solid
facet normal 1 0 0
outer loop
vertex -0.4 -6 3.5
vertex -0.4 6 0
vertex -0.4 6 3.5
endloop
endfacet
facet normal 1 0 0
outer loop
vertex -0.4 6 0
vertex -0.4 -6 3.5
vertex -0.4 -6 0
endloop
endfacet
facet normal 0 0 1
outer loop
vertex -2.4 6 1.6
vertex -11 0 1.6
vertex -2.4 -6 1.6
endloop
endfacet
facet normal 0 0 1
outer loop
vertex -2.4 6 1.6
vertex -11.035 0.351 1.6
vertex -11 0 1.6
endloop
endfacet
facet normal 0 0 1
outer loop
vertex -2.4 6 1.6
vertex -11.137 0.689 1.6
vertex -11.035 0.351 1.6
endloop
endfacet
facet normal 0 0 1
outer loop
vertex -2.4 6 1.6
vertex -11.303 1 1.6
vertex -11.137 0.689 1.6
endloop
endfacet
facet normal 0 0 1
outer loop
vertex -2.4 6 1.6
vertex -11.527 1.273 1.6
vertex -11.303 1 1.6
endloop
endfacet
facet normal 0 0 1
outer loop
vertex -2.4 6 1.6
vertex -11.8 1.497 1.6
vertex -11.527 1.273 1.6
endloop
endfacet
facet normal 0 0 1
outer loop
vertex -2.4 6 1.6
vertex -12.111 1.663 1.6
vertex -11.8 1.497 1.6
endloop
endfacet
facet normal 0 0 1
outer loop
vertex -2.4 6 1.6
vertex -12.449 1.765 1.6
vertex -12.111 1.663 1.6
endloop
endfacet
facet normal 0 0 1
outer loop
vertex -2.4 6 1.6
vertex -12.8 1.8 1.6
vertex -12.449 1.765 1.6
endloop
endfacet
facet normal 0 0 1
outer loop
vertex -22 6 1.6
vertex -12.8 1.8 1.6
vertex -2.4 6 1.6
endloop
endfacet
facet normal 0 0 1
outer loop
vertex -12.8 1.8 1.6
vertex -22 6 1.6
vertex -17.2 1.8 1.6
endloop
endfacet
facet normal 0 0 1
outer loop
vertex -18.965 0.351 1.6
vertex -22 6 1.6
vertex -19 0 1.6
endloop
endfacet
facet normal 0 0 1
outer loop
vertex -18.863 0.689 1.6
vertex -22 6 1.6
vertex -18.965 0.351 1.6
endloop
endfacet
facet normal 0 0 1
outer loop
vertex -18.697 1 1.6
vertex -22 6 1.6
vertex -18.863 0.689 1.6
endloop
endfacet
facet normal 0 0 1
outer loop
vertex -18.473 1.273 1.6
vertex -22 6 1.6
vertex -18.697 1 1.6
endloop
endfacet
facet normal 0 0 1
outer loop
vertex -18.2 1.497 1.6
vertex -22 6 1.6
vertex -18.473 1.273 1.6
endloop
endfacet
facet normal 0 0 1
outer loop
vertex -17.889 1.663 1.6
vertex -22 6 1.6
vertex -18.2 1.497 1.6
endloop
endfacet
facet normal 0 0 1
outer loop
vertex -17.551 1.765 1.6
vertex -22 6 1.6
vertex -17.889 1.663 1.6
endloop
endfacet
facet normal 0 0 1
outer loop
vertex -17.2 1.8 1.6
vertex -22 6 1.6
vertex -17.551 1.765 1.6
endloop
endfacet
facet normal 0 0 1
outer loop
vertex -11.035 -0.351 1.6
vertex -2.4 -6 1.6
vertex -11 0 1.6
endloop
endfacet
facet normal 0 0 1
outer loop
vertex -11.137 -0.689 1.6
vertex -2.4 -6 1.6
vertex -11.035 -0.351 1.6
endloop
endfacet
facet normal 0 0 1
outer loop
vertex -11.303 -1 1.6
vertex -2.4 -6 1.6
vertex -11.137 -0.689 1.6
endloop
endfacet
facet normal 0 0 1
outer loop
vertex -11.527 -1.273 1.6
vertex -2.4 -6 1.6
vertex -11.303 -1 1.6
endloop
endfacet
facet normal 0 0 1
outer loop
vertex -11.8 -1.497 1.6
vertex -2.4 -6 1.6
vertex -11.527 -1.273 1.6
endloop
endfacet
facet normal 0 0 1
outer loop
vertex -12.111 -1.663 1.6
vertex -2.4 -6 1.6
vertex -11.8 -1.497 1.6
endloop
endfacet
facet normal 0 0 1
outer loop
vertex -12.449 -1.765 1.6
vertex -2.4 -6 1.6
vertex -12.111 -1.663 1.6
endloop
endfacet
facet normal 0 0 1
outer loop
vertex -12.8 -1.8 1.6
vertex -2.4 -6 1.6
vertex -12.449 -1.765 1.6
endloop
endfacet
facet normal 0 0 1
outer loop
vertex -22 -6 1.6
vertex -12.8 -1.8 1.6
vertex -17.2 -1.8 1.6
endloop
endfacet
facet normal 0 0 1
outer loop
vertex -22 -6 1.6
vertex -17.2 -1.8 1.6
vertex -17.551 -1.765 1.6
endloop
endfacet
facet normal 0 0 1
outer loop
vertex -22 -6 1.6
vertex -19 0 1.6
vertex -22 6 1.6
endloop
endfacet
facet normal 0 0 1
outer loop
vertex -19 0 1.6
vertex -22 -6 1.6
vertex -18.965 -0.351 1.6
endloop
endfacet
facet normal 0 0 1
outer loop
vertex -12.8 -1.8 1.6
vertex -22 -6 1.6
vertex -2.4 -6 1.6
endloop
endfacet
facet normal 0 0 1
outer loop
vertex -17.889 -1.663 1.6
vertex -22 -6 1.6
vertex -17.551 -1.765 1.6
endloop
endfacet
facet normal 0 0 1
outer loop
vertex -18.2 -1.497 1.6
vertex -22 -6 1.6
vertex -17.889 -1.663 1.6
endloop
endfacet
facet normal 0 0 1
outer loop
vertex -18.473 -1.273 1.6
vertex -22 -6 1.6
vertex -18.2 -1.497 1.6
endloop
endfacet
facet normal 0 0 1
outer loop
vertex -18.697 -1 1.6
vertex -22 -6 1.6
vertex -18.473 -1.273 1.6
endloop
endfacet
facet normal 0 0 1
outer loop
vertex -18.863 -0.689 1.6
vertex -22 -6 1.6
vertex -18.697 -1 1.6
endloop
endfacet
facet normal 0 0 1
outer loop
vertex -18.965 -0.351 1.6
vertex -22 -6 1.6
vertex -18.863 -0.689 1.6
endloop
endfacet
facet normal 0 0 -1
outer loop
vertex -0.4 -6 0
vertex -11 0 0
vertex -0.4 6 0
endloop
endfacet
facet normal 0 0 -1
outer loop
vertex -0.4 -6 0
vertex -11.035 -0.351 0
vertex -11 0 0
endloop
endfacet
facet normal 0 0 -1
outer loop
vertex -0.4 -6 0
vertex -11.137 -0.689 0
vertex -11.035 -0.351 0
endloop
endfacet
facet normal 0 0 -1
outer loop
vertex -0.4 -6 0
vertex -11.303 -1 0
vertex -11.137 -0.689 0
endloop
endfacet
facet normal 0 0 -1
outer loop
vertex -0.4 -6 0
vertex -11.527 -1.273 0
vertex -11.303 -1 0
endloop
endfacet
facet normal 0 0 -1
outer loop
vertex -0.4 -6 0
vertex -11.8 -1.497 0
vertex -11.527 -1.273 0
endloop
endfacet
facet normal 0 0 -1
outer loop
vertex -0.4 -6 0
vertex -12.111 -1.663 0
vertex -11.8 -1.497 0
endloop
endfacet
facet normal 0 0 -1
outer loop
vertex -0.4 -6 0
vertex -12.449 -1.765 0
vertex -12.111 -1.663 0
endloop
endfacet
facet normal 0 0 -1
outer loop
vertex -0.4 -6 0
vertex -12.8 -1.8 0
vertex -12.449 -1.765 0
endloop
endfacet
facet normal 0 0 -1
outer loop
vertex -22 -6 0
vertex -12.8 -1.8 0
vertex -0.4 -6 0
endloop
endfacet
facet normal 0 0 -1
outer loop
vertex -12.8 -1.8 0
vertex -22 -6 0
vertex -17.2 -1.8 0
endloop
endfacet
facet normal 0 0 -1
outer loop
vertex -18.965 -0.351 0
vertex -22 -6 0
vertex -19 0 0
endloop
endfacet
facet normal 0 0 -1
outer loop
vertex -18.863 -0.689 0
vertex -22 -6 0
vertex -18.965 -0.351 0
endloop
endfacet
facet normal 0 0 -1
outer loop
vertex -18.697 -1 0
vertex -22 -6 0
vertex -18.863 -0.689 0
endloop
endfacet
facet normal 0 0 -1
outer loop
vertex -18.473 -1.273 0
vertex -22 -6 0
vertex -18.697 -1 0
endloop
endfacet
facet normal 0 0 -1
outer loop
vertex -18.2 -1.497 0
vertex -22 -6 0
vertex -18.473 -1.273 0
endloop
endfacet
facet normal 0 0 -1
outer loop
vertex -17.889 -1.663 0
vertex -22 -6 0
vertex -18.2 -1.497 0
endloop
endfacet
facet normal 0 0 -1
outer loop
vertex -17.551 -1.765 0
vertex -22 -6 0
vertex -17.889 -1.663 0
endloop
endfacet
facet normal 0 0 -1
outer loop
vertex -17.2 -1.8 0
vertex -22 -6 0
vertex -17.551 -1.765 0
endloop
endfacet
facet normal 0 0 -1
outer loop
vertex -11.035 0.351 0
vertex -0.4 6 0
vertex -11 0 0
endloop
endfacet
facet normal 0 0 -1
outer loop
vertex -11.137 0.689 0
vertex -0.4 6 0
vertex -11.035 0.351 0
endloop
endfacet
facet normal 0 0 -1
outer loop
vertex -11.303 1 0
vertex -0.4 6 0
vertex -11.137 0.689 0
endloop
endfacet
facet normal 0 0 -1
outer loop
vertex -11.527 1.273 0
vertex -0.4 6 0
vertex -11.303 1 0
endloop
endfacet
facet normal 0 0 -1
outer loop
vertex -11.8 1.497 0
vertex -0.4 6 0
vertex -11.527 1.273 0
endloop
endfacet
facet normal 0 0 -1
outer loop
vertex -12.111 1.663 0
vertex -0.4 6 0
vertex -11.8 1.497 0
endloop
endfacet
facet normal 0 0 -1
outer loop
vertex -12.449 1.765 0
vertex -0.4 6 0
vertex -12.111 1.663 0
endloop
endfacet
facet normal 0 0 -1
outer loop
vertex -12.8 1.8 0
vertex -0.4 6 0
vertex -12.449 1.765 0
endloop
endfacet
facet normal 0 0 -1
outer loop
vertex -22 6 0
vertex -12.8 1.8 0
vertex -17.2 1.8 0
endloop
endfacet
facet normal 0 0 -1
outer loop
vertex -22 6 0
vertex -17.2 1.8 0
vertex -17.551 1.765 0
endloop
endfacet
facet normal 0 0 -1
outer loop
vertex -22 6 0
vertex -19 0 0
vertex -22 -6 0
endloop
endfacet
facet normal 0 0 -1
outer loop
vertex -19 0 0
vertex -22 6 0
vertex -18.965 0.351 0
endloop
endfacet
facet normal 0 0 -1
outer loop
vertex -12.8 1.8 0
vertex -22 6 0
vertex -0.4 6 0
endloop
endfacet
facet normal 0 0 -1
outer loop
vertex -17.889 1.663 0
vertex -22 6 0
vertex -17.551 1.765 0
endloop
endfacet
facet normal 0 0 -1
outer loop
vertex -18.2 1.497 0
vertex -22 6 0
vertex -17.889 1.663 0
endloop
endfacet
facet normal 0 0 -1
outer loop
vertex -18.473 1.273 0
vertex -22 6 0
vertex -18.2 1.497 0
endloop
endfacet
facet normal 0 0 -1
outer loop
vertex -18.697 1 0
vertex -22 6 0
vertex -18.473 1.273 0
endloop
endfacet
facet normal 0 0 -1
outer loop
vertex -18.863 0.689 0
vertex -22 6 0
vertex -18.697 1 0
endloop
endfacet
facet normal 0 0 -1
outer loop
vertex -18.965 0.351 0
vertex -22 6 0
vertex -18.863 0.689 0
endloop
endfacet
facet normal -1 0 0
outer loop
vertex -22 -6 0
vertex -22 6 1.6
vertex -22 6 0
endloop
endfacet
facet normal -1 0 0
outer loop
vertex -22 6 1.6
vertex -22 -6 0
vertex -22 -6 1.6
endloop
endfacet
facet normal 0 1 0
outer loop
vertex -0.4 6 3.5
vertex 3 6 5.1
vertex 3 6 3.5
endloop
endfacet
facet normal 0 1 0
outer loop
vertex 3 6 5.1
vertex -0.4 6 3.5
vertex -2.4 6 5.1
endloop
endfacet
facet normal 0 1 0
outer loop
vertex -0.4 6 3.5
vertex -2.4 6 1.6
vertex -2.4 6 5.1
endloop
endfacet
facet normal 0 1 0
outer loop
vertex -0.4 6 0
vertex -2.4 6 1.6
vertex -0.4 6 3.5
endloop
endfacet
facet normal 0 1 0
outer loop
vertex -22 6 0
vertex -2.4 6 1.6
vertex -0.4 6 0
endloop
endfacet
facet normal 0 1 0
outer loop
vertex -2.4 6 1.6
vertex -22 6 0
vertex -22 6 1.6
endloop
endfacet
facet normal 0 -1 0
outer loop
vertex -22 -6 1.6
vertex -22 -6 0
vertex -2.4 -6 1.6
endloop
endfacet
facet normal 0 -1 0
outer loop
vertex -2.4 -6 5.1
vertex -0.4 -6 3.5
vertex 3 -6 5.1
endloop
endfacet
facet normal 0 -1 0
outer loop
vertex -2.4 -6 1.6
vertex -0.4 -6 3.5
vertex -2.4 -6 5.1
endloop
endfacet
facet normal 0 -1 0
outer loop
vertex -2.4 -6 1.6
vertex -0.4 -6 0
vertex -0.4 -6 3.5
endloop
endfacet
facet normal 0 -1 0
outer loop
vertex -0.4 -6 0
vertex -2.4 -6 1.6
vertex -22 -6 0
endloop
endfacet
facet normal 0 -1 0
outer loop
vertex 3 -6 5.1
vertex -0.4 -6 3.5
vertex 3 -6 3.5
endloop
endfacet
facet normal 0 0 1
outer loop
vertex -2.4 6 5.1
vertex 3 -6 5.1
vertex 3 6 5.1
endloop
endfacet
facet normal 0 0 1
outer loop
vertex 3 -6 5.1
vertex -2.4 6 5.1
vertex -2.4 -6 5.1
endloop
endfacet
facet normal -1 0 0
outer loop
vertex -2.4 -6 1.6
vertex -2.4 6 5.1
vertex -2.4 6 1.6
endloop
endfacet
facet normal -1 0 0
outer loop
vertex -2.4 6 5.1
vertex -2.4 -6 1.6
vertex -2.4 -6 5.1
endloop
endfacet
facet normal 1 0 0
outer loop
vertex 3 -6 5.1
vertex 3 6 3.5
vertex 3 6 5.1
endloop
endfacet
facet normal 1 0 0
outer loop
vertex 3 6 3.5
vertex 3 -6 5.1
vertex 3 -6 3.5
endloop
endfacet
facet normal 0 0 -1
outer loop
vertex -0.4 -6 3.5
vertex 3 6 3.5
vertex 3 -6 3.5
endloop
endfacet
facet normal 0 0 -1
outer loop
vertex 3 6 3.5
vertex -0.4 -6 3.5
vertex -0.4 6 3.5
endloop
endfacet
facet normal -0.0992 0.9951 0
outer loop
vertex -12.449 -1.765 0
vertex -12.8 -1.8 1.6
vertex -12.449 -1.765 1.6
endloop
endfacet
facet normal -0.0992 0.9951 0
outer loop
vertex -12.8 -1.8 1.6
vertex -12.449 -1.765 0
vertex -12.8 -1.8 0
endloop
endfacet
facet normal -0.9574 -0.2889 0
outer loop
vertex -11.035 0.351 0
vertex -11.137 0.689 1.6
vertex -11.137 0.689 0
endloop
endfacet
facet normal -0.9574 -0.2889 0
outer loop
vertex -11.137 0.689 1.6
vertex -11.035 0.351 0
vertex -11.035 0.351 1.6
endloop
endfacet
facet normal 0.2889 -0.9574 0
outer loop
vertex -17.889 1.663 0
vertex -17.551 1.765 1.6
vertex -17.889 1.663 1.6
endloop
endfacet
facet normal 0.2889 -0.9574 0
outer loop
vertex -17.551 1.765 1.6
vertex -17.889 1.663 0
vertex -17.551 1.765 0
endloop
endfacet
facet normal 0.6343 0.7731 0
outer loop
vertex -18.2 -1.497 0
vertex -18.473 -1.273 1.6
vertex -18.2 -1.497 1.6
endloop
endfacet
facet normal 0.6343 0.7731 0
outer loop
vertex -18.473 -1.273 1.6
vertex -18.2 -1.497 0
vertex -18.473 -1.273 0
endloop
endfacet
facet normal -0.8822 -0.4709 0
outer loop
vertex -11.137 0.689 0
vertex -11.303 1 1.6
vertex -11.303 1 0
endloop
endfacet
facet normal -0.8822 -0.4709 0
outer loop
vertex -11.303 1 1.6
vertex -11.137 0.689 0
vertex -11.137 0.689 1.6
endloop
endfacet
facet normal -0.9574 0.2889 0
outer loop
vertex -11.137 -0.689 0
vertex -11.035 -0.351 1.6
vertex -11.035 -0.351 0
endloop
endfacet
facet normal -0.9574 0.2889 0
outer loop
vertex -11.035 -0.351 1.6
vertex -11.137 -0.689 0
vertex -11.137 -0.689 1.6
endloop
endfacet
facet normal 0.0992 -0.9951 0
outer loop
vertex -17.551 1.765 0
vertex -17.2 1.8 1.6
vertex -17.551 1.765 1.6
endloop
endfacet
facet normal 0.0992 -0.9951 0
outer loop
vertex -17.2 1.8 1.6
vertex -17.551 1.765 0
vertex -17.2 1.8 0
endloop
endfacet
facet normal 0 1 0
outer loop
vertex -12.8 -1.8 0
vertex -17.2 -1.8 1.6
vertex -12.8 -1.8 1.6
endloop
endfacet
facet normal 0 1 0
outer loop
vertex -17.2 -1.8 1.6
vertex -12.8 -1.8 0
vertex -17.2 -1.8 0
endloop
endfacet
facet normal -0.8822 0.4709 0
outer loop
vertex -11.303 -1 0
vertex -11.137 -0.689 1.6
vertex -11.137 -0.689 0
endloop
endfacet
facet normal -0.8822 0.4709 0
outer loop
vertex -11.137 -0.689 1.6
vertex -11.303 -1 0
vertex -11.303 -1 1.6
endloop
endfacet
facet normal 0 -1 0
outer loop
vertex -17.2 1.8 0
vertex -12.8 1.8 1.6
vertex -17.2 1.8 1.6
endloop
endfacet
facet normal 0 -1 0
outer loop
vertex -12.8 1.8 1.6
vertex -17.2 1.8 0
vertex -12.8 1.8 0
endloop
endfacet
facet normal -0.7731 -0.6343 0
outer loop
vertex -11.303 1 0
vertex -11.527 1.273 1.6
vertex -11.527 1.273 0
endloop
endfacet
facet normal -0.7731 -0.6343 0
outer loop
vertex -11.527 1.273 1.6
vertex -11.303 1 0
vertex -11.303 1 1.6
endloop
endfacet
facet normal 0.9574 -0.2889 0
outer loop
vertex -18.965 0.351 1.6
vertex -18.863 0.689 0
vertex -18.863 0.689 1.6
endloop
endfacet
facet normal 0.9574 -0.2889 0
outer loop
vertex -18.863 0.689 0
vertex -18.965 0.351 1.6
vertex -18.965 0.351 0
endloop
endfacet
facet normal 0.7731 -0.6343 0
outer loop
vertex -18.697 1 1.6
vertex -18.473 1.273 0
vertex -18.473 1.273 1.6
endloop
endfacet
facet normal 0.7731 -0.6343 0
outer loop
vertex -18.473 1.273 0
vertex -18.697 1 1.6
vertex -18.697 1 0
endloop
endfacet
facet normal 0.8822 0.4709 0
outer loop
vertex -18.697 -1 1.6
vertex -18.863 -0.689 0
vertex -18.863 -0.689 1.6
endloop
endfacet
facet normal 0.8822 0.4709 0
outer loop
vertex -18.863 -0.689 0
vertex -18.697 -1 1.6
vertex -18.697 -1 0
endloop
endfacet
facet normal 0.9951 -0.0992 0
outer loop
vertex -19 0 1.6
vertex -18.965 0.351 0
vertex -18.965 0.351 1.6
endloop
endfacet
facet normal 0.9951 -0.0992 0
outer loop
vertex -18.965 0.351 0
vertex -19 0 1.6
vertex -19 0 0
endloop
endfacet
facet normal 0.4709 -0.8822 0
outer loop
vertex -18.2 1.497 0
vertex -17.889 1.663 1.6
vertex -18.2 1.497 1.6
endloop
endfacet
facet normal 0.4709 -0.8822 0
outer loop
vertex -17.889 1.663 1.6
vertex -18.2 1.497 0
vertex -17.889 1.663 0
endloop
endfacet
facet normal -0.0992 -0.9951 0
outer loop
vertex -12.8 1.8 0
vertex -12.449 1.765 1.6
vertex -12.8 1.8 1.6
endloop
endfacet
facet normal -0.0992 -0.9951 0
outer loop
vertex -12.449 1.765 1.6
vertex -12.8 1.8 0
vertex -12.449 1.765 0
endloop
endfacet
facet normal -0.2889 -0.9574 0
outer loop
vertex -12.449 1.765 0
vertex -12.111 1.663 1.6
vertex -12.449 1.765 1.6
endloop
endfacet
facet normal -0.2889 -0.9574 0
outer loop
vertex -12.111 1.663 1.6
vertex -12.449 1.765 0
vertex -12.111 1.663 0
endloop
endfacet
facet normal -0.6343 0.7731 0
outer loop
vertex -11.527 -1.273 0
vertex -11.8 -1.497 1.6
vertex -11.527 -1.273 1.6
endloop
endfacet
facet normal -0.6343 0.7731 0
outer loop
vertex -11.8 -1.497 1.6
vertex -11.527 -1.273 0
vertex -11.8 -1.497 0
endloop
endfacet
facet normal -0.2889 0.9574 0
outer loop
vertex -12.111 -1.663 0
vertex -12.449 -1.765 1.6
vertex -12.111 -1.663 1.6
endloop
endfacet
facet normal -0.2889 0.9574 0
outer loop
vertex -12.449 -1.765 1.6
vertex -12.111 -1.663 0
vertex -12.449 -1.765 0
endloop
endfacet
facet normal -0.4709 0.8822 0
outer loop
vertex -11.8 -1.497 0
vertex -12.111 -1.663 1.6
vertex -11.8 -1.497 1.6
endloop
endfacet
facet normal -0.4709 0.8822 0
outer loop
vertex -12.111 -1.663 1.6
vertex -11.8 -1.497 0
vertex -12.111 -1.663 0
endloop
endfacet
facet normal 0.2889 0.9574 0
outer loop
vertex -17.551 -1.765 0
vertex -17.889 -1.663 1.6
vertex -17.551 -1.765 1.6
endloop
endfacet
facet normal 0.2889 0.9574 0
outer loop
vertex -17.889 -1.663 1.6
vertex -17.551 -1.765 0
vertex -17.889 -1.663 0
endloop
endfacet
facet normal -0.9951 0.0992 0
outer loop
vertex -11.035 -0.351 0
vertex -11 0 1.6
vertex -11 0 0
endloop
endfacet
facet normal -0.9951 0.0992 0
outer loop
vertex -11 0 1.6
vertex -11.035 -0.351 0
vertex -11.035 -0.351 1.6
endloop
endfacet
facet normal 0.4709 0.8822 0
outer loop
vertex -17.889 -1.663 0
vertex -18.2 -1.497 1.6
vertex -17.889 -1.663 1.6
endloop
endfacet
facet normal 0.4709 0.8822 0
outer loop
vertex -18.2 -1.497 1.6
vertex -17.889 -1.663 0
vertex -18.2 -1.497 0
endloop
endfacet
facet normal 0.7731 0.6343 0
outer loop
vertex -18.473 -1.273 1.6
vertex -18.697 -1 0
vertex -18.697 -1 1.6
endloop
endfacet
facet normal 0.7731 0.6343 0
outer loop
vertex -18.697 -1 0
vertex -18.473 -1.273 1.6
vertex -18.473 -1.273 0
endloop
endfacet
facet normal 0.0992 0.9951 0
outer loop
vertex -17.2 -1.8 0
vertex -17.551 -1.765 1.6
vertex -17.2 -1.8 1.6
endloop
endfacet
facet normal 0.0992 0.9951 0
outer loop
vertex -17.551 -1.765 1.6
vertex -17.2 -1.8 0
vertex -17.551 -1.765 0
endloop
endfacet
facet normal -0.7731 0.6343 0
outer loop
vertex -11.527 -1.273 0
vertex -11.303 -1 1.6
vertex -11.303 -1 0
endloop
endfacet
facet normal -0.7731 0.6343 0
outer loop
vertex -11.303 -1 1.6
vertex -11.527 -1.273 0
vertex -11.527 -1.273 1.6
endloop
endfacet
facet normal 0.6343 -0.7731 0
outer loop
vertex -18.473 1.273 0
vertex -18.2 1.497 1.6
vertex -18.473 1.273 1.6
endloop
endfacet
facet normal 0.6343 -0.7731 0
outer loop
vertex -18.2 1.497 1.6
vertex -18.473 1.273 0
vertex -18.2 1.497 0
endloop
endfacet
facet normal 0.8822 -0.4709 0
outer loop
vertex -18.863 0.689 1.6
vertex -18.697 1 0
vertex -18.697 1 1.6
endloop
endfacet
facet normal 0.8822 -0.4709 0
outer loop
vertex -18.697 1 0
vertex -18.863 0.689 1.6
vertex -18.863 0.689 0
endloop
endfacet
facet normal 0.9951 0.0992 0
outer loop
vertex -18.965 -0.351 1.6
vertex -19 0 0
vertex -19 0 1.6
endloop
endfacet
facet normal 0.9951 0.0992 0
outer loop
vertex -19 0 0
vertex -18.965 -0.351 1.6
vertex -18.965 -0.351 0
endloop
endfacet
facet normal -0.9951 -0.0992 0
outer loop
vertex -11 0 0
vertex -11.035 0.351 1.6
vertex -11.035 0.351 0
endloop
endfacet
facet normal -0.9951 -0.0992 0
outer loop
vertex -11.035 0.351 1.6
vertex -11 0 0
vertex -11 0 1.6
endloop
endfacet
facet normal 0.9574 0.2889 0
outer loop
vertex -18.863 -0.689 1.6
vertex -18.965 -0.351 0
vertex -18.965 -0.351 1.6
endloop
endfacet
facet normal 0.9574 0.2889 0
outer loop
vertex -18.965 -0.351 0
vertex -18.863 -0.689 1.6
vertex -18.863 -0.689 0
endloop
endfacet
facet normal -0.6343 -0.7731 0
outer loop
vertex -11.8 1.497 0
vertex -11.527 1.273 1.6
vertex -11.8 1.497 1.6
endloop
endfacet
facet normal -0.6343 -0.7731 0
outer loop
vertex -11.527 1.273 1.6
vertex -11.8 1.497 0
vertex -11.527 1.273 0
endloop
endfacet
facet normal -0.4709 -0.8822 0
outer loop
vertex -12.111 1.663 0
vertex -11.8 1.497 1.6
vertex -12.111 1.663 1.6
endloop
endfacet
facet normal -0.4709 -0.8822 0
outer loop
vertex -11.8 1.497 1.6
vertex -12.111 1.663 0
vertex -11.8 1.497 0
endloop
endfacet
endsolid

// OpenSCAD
// Slotted glass clamp for the BIQU Magician bed.
// x runs radially: x=0 is the glass edge, glass is at x>0, the bed screw is near x=-15.
// z=0 is the top of the acrylic lobe.
glass   = 3.2;   // 1/8 inch glass
gap_z   = 0.3;   // clearance, glass top to lip underside
base_t  = 1.6;   // tab thickness under the screw head
lip_t   = 1.6;   // lip roof thickness
overhang= 3.0;   // lip reach over the glass edge
gap_x   = 0.4;   // clearance, riser to glass edge
riser_t = 2.0;
w       = 12;    // tab width
slot_c  = -15;   // slot centre = screw distance from the glass edge
slot_l  = 8;     // slot length (travel)
slot_w  = 3.6;   // M3 clearance
tail    = 7;     // tab length behind the slot centre

xe = -gap_x;
zl0 = glass + gap_z;
zl1 = zl0 + lip_t;
back = slot_c - tail;

module clamp() {
    difference() {
        union() {
            translate([back, -w/2, 0]) cube([xe - back, w, base_t]);                 // base
            translate([xe - riser_t, -w/2, 0]) cube([riser_t, w, zl1]);               // riser
            translate([xe - riser_t, -w/2, zl0]) cube([overhang - (xe - riser_t), w, lip_t]); // lip
        }
        // slotted M3 hole
        hull() for (s = [-1, 1])
            translate([slot_c + s * (slot_l - slot_w) / 2, 0, -1]) cylinder(d = slot_w, h = base_t + 2, $fn = 32);
    }
}

clamp();
